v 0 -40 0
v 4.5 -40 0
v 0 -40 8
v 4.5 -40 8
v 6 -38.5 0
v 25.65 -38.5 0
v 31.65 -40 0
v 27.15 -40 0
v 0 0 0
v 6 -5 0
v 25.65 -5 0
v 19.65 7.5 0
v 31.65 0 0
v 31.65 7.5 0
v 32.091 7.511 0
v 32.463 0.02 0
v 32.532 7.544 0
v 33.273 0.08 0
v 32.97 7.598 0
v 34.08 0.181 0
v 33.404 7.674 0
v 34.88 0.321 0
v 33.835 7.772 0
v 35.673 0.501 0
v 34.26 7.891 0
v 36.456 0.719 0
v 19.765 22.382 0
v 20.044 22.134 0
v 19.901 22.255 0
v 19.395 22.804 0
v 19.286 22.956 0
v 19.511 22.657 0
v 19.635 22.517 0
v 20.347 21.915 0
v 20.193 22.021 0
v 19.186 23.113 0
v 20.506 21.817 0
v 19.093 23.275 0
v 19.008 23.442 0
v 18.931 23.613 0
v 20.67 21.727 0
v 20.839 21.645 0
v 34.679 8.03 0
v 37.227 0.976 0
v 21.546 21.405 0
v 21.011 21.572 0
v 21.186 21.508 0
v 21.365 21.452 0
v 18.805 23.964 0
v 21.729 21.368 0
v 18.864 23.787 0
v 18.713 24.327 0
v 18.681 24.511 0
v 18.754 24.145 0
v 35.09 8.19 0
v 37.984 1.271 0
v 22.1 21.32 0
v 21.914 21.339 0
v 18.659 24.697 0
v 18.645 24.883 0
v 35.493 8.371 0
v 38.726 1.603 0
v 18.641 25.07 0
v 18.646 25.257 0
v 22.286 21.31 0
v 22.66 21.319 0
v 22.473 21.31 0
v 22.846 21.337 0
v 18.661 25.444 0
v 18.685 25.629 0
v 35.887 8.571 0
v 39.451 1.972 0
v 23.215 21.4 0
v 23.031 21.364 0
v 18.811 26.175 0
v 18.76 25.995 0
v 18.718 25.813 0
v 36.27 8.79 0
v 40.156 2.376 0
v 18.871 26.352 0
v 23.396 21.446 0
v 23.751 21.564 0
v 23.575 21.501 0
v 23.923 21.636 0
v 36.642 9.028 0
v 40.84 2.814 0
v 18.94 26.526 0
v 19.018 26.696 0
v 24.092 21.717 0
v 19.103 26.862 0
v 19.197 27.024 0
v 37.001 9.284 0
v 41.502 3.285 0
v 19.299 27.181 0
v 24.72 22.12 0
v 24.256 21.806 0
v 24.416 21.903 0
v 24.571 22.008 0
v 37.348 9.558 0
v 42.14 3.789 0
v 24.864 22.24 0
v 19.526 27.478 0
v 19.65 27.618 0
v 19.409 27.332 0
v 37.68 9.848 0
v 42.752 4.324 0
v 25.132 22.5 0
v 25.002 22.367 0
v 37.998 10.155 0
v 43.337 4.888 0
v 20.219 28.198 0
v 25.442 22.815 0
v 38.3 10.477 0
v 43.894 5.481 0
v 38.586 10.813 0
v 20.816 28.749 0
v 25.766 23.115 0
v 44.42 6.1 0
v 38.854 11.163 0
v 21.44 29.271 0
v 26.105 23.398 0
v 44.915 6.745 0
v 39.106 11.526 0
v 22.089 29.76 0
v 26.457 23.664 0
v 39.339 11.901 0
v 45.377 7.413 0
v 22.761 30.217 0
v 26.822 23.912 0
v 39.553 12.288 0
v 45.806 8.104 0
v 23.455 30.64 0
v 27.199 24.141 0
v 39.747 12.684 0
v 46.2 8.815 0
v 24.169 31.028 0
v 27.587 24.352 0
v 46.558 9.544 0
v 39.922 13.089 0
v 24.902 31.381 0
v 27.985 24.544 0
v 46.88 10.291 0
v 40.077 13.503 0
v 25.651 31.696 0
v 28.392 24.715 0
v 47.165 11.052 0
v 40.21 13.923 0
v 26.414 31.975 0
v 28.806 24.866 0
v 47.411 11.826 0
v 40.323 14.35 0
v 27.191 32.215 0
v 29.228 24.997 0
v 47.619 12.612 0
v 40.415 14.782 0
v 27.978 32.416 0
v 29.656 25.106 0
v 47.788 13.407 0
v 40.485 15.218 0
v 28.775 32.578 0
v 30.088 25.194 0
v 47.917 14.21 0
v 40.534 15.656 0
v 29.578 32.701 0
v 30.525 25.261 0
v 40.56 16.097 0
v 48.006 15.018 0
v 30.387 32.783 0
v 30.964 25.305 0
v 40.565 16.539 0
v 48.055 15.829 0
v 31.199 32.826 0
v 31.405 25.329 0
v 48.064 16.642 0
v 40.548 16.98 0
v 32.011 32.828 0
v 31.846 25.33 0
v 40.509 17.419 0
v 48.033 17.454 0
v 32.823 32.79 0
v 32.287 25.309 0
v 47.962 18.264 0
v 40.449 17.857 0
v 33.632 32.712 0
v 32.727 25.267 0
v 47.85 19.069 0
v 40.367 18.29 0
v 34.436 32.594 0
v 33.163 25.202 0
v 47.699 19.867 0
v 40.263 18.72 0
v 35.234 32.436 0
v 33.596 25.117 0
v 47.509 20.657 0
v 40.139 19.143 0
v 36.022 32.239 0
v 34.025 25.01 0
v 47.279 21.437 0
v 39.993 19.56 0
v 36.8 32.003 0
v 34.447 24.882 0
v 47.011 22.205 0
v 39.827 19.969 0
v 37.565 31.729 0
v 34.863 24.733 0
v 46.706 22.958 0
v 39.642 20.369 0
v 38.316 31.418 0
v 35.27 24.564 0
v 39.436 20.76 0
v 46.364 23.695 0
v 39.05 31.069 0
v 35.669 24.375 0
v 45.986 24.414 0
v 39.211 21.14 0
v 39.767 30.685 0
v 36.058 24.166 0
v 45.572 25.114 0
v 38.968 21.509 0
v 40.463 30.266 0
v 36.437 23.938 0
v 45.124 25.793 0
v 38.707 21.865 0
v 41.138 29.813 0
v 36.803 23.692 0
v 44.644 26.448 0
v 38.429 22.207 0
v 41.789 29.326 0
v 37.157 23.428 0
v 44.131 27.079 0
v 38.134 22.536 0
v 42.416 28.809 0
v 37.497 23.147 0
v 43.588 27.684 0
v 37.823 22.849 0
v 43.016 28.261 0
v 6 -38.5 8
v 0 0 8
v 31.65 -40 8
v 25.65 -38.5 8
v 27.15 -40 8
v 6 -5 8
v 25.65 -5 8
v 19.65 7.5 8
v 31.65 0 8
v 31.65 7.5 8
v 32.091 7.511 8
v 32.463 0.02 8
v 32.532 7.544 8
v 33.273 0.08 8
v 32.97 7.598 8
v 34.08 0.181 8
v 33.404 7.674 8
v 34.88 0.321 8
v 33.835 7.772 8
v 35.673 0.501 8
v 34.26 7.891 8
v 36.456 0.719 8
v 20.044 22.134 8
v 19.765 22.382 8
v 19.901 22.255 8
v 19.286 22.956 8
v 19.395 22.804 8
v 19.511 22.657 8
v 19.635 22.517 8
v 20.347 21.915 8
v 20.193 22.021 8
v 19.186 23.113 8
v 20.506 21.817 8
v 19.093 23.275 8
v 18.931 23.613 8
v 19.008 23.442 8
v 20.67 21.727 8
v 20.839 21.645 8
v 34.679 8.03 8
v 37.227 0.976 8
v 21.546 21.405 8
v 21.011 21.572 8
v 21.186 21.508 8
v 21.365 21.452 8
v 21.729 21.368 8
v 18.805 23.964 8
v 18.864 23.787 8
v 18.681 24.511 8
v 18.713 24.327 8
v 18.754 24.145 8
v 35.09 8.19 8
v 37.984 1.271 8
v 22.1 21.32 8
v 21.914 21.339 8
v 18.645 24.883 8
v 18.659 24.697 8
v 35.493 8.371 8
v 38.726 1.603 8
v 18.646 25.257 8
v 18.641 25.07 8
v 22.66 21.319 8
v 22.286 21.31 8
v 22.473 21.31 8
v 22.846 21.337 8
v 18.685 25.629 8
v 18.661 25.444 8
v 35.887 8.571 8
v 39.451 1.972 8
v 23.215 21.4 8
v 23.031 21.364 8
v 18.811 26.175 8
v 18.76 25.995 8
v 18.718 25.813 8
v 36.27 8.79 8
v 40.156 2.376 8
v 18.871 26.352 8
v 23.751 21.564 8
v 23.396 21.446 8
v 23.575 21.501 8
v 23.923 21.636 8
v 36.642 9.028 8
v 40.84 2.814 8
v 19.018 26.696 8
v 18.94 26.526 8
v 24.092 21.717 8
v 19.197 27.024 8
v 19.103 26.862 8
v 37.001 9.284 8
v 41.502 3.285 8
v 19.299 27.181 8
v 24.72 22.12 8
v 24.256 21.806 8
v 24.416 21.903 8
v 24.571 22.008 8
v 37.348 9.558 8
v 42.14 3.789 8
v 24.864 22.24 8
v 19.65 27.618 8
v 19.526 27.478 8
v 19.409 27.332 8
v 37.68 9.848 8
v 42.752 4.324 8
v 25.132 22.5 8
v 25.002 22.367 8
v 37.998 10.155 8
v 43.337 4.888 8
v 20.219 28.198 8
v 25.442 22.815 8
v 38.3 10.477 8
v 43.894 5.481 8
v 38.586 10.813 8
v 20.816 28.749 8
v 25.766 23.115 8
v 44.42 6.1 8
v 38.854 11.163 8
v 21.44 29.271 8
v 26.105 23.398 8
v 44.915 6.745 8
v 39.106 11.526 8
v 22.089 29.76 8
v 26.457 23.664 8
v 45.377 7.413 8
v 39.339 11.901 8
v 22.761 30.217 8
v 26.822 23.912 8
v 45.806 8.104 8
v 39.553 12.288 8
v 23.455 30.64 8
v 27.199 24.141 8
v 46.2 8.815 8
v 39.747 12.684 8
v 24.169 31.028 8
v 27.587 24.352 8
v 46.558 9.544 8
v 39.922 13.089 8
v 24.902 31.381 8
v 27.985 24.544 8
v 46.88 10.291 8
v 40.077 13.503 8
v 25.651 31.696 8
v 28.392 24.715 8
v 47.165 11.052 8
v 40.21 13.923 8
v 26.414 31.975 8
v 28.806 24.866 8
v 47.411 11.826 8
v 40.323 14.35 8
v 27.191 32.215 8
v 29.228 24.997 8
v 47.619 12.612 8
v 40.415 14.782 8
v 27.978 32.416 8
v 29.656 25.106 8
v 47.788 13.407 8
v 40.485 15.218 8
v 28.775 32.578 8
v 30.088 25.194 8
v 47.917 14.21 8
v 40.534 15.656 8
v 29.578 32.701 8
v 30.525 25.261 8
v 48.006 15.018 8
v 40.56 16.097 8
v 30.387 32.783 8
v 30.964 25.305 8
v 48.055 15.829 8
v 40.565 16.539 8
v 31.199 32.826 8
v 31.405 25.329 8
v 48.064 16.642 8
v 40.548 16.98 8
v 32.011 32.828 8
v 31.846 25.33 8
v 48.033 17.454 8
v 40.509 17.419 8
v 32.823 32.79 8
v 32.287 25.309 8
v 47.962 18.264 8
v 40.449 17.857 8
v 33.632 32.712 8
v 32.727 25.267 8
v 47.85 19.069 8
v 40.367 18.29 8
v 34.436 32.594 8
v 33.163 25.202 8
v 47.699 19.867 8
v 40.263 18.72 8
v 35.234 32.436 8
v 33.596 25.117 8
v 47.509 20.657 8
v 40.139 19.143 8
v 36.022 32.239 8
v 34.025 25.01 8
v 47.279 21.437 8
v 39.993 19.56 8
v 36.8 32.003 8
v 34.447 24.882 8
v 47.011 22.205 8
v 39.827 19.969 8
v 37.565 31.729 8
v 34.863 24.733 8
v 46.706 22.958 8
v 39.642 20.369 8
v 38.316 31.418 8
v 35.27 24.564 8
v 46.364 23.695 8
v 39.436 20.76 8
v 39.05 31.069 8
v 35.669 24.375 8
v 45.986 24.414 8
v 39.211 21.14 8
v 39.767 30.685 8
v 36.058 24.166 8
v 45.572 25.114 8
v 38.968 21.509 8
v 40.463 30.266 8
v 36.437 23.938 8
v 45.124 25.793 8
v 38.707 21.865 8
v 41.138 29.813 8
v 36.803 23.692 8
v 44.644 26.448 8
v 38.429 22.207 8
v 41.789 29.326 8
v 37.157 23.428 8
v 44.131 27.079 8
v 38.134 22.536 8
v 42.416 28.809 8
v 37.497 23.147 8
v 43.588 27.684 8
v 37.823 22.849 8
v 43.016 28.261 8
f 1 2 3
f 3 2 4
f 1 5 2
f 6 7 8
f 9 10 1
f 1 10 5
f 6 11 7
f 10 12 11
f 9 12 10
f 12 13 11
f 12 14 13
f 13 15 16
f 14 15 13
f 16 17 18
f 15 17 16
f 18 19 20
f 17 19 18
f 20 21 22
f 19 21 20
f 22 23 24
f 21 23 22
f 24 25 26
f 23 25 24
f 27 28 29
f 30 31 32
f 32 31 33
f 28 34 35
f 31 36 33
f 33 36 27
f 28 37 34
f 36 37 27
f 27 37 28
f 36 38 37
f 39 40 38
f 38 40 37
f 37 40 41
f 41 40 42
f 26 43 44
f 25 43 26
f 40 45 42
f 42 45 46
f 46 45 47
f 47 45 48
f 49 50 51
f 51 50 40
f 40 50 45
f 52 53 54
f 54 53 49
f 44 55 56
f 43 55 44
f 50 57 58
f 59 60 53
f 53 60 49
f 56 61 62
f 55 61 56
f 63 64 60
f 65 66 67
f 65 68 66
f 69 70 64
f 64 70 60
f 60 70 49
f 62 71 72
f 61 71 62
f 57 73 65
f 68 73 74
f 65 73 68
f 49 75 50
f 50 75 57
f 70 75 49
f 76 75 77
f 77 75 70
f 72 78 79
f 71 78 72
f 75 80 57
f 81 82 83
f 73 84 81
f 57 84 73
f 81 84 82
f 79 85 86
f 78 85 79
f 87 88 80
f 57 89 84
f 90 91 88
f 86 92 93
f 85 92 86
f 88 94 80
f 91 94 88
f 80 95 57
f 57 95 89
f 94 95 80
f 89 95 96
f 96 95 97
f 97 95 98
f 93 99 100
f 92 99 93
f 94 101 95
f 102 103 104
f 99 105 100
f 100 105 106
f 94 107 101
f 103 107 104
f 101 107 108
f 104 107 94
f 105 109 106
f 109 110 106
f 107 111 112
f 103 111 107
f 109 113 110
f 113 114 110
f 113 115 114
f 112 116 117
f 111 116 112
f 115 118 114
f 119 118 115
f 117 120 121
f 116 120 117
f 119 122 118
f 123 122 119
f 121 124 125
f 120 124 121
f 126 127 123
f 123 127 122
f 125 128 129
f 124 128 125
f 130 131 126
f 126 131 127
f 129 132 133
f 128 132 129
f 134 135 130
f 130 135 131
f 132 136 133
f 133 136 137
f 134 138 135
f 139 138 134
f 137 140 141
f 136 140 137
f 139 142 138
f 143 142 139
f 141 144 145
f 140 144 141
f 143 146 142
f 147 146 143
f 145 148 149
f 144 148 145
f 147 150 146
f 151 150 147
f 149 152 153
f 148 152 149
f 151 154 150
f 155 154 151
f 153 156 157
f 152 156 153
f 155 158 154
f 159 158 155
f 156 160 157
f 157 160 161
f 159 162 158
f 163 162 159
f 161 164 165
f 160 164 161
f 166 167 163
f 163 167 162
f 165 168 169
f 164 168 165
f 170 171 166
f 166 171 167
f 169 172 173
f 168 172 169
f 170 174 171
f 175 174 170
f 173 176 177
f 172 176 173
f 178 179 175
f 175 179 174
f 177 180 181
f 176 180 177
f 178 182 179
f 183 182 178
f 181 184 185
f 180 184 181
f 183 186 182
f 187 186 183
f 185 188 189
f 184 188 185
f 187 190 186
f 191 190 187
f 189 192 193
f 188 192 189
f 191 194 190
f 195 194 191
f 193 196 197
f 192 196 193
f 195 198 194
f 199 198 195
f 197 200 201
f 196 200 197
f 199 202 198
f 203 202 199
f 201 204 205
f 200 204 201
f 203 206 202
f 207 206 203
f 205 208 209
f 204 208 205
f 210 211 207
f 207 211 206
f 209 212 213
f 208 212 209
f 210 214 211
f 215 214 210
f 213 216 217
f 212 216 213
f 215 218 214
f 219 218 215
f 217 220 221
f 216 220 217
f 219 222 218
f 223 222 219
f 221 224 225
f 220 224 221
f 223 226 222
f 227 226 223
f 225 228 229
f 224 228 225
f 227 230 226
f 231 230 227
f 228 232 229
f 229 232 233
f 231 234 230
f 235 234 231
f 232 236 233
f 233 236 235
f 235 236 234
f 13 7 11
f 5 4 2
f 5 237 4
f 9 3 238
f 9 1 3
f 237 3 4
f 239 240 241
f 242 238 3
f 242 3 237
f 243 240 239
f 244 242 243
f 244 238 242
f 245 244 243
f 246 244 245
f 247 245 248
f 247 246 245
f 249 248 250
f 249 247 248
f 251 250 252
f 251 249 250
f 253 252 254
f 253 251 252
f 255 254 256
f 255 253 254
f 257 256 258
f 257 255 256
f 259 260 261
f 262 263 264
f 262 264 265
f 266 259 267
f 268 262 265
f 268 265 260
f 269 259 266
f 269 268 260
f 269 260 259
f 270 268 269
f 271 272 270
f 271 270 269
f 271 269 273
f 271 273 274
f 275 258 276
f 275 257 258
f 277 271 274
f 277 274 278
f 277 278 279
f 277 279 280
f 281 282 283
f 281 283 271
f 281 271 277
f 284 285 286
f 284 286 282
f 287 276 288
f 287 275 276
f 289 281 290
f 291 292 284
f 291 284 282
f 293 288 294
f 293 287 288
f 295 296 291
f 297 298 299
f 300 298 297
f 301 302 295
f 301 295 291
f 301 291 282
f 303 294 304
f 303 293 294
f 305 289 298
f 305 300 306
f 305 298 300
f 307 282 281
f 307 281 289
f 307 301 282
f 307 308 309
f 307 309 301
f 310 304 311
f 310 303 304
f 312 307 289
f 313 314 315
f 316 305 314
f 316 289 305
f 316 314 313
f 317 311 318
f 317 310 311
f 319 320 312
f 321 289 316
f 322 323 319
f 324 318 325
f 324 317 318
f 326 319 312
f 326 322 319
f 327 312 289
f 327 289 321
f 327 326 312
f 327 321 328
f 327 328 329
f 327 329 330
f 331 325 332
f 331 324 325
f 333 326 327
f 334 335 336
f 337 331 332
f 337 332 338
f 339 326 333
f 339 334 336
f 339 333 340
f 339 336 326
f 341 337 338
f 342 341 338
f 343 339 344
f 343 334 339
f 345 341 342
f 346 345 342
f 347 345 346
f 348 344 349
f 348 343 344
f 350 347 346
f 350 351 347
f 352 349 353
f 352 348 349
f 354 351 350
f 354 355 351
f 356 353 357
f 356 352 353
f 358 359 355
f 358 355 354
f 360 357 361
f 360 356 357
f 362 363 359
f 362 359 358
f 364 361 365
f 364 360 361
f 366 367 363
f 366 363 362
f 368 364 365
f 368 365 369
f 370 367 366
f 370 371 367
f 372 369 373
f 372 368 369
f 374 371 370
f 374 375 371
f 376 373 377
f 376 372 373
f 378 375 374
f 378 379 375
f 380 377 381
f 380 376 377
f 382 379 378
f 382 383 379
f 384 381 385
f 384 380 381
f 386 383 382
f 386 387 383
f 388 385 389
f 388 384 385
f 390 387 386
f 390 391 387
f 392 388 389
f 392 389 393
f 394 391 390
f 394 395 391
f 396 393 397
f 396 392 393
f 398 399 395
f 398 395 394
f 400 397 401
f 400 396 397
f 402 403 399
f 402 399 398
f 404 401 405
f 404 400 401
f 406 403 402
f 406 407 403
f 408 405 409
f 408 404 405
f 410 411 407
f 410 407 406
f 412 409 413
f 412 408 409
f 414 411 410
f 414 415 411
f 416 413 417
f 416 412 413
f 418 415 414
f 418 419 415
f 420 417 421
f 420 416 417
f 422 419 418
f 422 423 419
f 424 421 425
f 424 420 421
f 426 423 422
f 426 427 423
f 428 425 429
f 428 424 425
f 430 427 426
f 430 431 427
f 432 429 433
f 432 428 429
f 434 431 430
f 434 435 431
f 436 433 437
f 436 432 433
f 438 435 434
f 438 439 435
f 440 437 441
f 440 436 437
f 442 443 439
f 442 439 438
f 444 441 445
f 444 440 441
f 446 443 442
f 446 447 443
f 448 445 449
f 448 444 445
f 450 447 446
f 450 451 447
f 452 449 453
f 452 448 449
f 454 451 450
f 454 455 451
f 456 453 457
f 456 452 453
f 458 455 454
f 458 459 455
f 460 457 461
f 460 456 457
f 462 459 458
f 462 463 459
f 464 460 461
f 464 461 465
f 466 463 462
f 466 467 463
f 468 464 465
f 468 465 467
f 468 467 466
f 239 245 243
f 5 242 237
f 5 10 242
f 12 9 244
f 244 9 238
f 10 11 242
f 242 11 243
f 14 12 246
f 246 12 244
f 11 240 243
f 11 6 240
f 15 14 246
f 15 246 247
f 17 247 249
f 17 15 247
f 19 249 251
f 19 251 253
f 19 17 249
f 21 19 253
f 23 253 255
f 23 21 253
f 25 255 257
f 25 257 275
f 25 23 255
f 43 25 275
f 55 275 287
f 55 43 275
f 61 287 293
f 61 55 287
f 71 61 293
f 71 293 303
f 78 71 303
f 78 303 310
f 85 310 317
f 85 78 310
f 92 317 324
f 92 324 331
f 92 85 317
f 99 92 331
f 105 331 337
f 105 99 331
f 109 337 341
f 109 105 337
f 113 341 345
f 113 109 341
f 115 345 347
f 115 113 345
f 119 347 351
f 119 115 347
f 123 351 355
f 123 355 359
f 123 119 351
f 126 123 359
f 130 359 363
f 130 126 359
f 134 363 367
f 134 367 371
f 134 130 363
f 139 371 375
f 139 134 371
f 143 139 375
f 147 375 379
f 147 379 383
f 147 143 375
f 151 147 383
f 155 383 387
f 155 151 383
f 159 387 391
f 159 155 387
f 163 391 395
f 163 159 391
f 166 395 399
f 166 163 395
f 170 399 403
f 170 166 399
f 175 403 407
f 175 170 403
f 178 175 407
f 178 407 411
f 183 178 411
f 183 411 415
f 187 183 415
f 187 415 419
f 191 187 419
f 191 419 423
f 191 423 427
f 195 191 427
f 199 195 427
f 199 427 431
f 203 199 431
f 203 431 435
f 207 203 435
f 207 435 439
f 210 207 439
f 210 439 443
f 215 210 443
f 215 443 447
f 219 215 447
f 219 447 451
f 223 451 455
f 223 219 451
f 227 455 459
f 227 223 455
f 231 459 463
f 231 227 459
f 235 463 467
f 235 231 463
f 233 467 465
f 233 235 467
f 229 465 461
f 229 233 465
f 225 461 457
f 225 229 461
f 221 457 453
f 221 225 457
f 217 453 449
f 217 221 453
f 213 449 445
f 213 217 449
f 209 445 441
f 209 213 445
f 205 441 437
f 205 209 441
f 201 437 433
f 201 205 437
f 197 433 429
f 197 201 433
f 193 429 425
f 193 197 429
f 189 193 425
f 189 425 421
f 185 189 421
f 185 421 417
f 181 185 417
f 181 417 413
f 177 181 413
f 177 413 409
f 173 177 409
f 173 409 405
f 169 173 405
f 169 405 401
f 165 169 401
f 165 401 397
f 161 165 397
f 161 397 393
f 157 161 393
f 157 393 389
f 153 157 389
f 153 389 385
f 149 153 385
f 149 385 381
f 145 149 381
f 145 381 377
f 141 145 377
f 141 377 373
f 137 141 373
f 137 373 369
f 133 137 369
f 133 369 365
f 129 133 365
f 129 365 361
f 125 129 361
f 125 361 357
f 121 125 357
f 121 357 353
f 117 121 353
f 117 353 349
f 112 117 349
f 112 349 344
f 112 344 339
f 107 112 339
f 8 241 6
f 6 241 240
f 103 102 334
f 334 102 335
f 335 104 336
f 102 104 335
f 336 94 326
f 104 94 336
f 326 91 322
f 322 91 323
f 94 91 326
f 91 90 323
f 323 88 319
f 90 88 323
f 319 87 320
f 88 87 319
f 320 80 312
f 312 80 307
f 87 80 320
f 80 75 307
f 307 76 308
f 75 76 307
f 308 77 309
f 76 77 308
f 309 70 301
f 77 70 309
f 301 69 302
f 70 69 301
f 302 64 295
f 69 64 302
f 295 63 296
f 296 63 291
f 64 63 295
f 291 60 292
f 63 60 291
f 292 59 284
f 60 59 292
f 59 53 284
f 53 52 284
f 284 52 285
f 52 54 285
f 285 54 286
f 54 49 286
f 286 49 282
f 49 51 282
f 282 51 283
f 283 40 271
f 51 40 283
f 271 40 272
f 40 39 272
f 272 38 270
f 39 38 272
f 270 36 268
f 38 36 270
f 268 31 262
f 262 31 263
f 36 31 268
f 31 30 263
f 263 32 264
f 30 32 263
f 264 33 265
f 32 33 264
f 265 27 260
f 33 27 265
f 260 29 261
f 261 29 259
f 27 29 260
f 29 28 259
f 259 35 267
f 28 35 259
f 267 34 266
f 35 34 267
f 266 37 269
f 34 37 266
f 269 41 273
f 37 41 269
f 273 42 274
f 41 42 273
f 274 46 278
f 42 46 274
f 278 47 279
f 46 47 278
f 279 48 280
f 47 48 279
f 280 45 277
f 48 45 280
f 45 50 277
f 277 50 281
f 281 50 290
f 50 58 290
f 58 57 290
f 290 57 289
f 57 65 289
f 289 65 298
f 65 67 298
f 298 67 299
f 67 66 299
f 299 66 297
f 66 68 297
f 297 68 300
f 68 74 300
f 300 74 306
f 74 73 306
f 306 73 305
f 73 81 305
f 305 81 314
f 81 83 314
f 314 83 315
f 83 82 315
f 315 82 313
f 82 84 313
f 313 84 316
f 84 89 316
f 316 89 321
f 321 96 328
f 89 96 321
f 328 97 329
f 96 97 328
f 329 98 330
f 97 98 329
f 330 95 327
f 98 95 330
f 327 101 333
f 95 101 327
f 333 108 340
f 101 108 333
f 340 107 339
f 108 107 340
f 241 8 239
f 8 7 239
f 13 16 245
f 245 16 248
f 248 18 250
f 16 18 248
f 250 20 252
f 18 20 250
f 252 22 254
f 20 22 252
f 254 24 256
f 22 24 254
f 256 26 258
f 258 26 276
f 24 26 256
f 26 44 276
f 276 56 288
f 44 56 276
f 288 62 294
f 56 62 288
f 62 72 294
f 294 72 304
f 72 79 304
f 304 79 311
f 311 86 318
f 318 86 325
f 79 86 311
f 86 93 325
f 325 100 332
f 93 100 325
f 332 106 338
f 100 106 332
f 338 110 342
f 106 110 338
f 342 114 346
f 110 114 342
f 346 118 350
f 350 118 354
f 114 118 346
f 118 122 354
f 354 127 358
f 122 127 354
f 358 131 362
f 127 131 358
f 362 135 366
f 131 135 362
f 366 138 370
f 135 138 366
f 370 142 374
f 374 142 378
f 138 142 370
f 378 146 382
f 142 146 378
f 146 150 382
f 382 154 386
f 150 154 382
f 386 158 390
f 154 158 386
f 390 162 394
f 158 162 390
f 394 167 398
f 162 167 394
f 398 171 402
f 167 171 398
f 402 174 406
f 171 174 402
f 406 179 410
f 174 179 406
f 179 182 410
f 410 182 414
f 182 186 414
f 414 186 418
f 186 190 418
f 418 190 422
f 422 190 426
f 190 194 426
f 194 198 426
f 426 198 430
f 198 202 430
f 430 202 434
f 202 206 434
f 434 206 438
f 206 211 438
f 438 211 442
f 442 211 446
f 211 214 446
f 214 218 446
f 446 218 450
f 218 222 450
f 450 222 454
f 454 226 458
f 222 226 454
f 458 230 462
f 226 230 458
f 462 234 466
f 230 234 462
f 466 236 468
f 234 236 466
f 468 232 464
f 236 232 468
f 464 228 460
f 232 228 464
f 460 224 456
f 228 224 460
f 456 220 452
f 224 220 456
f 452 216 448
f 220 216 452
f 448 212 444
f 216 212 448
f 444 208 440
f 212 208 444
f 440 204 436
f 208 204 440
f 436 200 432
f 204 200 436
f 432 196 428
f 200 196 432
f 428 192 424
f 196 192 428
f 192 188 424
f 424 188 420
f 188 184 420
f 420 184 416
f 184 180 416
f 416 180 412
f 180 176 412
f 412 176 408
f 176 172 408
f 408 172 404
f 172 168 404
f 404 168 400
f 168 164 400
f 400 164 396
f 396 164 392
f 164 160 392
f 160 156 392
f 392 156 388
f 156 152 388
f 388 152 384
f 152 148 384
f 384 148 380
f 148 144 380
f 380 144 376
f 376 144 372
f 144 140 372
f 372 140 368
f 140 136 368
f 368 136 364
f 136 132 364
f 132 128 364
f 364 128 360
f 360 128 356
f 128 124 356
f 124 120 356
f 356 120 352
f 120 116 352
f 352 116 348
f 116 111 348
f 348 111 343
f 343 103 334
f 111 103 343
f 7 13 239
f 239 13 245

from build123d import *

# Parameters (mm, degrees)
PAD_DEPTH    = 8
CHAMFER_SIZE = 1.5


with BuildPart() as part:
    # Sketch → Pad (new body)
    with BuildSketch(Plane.XY):
        with BuildLine():
            ThreePointArc((31.65, 0), (46.706124, 22.957835), (19.65001, 27.617855))
            ThreePointArc((19.65001, 27.617855), (19.832321, 22.317689), (25.132488, 22.5))
            ThreePointArc((31.65, 7.5), (39.827391, 19.969016), (25.132488, 22.5))
            Line((31.65, 7.5), (19.65001, 7.5))
            Line((19.65001, 7.5), (0, 0))
            Line((0, 0), (0, -40))
            Line((0, -40), (6, -40))
            Line((6, -40), (6, -5))
            Line((6, -5), (25.65, -5))
            Line((25.65, -5), (25.65, -40))
            Line((25.65, -40), (31.65, -40))
            Line((31.65, -40), (31.65, 0))
        make_face()
    extrude(amount=PAD_DEPTH)

    # Chamfer
    chamfer_edges = [part.edges().sort_by_distance(p)[0] for p in [
        (6, -40, 4),
        (25.65, -40, 4),
    ]]
    chamfer(chamfer_edges, length=CHAMFER_SIZE)


solid = part.part
